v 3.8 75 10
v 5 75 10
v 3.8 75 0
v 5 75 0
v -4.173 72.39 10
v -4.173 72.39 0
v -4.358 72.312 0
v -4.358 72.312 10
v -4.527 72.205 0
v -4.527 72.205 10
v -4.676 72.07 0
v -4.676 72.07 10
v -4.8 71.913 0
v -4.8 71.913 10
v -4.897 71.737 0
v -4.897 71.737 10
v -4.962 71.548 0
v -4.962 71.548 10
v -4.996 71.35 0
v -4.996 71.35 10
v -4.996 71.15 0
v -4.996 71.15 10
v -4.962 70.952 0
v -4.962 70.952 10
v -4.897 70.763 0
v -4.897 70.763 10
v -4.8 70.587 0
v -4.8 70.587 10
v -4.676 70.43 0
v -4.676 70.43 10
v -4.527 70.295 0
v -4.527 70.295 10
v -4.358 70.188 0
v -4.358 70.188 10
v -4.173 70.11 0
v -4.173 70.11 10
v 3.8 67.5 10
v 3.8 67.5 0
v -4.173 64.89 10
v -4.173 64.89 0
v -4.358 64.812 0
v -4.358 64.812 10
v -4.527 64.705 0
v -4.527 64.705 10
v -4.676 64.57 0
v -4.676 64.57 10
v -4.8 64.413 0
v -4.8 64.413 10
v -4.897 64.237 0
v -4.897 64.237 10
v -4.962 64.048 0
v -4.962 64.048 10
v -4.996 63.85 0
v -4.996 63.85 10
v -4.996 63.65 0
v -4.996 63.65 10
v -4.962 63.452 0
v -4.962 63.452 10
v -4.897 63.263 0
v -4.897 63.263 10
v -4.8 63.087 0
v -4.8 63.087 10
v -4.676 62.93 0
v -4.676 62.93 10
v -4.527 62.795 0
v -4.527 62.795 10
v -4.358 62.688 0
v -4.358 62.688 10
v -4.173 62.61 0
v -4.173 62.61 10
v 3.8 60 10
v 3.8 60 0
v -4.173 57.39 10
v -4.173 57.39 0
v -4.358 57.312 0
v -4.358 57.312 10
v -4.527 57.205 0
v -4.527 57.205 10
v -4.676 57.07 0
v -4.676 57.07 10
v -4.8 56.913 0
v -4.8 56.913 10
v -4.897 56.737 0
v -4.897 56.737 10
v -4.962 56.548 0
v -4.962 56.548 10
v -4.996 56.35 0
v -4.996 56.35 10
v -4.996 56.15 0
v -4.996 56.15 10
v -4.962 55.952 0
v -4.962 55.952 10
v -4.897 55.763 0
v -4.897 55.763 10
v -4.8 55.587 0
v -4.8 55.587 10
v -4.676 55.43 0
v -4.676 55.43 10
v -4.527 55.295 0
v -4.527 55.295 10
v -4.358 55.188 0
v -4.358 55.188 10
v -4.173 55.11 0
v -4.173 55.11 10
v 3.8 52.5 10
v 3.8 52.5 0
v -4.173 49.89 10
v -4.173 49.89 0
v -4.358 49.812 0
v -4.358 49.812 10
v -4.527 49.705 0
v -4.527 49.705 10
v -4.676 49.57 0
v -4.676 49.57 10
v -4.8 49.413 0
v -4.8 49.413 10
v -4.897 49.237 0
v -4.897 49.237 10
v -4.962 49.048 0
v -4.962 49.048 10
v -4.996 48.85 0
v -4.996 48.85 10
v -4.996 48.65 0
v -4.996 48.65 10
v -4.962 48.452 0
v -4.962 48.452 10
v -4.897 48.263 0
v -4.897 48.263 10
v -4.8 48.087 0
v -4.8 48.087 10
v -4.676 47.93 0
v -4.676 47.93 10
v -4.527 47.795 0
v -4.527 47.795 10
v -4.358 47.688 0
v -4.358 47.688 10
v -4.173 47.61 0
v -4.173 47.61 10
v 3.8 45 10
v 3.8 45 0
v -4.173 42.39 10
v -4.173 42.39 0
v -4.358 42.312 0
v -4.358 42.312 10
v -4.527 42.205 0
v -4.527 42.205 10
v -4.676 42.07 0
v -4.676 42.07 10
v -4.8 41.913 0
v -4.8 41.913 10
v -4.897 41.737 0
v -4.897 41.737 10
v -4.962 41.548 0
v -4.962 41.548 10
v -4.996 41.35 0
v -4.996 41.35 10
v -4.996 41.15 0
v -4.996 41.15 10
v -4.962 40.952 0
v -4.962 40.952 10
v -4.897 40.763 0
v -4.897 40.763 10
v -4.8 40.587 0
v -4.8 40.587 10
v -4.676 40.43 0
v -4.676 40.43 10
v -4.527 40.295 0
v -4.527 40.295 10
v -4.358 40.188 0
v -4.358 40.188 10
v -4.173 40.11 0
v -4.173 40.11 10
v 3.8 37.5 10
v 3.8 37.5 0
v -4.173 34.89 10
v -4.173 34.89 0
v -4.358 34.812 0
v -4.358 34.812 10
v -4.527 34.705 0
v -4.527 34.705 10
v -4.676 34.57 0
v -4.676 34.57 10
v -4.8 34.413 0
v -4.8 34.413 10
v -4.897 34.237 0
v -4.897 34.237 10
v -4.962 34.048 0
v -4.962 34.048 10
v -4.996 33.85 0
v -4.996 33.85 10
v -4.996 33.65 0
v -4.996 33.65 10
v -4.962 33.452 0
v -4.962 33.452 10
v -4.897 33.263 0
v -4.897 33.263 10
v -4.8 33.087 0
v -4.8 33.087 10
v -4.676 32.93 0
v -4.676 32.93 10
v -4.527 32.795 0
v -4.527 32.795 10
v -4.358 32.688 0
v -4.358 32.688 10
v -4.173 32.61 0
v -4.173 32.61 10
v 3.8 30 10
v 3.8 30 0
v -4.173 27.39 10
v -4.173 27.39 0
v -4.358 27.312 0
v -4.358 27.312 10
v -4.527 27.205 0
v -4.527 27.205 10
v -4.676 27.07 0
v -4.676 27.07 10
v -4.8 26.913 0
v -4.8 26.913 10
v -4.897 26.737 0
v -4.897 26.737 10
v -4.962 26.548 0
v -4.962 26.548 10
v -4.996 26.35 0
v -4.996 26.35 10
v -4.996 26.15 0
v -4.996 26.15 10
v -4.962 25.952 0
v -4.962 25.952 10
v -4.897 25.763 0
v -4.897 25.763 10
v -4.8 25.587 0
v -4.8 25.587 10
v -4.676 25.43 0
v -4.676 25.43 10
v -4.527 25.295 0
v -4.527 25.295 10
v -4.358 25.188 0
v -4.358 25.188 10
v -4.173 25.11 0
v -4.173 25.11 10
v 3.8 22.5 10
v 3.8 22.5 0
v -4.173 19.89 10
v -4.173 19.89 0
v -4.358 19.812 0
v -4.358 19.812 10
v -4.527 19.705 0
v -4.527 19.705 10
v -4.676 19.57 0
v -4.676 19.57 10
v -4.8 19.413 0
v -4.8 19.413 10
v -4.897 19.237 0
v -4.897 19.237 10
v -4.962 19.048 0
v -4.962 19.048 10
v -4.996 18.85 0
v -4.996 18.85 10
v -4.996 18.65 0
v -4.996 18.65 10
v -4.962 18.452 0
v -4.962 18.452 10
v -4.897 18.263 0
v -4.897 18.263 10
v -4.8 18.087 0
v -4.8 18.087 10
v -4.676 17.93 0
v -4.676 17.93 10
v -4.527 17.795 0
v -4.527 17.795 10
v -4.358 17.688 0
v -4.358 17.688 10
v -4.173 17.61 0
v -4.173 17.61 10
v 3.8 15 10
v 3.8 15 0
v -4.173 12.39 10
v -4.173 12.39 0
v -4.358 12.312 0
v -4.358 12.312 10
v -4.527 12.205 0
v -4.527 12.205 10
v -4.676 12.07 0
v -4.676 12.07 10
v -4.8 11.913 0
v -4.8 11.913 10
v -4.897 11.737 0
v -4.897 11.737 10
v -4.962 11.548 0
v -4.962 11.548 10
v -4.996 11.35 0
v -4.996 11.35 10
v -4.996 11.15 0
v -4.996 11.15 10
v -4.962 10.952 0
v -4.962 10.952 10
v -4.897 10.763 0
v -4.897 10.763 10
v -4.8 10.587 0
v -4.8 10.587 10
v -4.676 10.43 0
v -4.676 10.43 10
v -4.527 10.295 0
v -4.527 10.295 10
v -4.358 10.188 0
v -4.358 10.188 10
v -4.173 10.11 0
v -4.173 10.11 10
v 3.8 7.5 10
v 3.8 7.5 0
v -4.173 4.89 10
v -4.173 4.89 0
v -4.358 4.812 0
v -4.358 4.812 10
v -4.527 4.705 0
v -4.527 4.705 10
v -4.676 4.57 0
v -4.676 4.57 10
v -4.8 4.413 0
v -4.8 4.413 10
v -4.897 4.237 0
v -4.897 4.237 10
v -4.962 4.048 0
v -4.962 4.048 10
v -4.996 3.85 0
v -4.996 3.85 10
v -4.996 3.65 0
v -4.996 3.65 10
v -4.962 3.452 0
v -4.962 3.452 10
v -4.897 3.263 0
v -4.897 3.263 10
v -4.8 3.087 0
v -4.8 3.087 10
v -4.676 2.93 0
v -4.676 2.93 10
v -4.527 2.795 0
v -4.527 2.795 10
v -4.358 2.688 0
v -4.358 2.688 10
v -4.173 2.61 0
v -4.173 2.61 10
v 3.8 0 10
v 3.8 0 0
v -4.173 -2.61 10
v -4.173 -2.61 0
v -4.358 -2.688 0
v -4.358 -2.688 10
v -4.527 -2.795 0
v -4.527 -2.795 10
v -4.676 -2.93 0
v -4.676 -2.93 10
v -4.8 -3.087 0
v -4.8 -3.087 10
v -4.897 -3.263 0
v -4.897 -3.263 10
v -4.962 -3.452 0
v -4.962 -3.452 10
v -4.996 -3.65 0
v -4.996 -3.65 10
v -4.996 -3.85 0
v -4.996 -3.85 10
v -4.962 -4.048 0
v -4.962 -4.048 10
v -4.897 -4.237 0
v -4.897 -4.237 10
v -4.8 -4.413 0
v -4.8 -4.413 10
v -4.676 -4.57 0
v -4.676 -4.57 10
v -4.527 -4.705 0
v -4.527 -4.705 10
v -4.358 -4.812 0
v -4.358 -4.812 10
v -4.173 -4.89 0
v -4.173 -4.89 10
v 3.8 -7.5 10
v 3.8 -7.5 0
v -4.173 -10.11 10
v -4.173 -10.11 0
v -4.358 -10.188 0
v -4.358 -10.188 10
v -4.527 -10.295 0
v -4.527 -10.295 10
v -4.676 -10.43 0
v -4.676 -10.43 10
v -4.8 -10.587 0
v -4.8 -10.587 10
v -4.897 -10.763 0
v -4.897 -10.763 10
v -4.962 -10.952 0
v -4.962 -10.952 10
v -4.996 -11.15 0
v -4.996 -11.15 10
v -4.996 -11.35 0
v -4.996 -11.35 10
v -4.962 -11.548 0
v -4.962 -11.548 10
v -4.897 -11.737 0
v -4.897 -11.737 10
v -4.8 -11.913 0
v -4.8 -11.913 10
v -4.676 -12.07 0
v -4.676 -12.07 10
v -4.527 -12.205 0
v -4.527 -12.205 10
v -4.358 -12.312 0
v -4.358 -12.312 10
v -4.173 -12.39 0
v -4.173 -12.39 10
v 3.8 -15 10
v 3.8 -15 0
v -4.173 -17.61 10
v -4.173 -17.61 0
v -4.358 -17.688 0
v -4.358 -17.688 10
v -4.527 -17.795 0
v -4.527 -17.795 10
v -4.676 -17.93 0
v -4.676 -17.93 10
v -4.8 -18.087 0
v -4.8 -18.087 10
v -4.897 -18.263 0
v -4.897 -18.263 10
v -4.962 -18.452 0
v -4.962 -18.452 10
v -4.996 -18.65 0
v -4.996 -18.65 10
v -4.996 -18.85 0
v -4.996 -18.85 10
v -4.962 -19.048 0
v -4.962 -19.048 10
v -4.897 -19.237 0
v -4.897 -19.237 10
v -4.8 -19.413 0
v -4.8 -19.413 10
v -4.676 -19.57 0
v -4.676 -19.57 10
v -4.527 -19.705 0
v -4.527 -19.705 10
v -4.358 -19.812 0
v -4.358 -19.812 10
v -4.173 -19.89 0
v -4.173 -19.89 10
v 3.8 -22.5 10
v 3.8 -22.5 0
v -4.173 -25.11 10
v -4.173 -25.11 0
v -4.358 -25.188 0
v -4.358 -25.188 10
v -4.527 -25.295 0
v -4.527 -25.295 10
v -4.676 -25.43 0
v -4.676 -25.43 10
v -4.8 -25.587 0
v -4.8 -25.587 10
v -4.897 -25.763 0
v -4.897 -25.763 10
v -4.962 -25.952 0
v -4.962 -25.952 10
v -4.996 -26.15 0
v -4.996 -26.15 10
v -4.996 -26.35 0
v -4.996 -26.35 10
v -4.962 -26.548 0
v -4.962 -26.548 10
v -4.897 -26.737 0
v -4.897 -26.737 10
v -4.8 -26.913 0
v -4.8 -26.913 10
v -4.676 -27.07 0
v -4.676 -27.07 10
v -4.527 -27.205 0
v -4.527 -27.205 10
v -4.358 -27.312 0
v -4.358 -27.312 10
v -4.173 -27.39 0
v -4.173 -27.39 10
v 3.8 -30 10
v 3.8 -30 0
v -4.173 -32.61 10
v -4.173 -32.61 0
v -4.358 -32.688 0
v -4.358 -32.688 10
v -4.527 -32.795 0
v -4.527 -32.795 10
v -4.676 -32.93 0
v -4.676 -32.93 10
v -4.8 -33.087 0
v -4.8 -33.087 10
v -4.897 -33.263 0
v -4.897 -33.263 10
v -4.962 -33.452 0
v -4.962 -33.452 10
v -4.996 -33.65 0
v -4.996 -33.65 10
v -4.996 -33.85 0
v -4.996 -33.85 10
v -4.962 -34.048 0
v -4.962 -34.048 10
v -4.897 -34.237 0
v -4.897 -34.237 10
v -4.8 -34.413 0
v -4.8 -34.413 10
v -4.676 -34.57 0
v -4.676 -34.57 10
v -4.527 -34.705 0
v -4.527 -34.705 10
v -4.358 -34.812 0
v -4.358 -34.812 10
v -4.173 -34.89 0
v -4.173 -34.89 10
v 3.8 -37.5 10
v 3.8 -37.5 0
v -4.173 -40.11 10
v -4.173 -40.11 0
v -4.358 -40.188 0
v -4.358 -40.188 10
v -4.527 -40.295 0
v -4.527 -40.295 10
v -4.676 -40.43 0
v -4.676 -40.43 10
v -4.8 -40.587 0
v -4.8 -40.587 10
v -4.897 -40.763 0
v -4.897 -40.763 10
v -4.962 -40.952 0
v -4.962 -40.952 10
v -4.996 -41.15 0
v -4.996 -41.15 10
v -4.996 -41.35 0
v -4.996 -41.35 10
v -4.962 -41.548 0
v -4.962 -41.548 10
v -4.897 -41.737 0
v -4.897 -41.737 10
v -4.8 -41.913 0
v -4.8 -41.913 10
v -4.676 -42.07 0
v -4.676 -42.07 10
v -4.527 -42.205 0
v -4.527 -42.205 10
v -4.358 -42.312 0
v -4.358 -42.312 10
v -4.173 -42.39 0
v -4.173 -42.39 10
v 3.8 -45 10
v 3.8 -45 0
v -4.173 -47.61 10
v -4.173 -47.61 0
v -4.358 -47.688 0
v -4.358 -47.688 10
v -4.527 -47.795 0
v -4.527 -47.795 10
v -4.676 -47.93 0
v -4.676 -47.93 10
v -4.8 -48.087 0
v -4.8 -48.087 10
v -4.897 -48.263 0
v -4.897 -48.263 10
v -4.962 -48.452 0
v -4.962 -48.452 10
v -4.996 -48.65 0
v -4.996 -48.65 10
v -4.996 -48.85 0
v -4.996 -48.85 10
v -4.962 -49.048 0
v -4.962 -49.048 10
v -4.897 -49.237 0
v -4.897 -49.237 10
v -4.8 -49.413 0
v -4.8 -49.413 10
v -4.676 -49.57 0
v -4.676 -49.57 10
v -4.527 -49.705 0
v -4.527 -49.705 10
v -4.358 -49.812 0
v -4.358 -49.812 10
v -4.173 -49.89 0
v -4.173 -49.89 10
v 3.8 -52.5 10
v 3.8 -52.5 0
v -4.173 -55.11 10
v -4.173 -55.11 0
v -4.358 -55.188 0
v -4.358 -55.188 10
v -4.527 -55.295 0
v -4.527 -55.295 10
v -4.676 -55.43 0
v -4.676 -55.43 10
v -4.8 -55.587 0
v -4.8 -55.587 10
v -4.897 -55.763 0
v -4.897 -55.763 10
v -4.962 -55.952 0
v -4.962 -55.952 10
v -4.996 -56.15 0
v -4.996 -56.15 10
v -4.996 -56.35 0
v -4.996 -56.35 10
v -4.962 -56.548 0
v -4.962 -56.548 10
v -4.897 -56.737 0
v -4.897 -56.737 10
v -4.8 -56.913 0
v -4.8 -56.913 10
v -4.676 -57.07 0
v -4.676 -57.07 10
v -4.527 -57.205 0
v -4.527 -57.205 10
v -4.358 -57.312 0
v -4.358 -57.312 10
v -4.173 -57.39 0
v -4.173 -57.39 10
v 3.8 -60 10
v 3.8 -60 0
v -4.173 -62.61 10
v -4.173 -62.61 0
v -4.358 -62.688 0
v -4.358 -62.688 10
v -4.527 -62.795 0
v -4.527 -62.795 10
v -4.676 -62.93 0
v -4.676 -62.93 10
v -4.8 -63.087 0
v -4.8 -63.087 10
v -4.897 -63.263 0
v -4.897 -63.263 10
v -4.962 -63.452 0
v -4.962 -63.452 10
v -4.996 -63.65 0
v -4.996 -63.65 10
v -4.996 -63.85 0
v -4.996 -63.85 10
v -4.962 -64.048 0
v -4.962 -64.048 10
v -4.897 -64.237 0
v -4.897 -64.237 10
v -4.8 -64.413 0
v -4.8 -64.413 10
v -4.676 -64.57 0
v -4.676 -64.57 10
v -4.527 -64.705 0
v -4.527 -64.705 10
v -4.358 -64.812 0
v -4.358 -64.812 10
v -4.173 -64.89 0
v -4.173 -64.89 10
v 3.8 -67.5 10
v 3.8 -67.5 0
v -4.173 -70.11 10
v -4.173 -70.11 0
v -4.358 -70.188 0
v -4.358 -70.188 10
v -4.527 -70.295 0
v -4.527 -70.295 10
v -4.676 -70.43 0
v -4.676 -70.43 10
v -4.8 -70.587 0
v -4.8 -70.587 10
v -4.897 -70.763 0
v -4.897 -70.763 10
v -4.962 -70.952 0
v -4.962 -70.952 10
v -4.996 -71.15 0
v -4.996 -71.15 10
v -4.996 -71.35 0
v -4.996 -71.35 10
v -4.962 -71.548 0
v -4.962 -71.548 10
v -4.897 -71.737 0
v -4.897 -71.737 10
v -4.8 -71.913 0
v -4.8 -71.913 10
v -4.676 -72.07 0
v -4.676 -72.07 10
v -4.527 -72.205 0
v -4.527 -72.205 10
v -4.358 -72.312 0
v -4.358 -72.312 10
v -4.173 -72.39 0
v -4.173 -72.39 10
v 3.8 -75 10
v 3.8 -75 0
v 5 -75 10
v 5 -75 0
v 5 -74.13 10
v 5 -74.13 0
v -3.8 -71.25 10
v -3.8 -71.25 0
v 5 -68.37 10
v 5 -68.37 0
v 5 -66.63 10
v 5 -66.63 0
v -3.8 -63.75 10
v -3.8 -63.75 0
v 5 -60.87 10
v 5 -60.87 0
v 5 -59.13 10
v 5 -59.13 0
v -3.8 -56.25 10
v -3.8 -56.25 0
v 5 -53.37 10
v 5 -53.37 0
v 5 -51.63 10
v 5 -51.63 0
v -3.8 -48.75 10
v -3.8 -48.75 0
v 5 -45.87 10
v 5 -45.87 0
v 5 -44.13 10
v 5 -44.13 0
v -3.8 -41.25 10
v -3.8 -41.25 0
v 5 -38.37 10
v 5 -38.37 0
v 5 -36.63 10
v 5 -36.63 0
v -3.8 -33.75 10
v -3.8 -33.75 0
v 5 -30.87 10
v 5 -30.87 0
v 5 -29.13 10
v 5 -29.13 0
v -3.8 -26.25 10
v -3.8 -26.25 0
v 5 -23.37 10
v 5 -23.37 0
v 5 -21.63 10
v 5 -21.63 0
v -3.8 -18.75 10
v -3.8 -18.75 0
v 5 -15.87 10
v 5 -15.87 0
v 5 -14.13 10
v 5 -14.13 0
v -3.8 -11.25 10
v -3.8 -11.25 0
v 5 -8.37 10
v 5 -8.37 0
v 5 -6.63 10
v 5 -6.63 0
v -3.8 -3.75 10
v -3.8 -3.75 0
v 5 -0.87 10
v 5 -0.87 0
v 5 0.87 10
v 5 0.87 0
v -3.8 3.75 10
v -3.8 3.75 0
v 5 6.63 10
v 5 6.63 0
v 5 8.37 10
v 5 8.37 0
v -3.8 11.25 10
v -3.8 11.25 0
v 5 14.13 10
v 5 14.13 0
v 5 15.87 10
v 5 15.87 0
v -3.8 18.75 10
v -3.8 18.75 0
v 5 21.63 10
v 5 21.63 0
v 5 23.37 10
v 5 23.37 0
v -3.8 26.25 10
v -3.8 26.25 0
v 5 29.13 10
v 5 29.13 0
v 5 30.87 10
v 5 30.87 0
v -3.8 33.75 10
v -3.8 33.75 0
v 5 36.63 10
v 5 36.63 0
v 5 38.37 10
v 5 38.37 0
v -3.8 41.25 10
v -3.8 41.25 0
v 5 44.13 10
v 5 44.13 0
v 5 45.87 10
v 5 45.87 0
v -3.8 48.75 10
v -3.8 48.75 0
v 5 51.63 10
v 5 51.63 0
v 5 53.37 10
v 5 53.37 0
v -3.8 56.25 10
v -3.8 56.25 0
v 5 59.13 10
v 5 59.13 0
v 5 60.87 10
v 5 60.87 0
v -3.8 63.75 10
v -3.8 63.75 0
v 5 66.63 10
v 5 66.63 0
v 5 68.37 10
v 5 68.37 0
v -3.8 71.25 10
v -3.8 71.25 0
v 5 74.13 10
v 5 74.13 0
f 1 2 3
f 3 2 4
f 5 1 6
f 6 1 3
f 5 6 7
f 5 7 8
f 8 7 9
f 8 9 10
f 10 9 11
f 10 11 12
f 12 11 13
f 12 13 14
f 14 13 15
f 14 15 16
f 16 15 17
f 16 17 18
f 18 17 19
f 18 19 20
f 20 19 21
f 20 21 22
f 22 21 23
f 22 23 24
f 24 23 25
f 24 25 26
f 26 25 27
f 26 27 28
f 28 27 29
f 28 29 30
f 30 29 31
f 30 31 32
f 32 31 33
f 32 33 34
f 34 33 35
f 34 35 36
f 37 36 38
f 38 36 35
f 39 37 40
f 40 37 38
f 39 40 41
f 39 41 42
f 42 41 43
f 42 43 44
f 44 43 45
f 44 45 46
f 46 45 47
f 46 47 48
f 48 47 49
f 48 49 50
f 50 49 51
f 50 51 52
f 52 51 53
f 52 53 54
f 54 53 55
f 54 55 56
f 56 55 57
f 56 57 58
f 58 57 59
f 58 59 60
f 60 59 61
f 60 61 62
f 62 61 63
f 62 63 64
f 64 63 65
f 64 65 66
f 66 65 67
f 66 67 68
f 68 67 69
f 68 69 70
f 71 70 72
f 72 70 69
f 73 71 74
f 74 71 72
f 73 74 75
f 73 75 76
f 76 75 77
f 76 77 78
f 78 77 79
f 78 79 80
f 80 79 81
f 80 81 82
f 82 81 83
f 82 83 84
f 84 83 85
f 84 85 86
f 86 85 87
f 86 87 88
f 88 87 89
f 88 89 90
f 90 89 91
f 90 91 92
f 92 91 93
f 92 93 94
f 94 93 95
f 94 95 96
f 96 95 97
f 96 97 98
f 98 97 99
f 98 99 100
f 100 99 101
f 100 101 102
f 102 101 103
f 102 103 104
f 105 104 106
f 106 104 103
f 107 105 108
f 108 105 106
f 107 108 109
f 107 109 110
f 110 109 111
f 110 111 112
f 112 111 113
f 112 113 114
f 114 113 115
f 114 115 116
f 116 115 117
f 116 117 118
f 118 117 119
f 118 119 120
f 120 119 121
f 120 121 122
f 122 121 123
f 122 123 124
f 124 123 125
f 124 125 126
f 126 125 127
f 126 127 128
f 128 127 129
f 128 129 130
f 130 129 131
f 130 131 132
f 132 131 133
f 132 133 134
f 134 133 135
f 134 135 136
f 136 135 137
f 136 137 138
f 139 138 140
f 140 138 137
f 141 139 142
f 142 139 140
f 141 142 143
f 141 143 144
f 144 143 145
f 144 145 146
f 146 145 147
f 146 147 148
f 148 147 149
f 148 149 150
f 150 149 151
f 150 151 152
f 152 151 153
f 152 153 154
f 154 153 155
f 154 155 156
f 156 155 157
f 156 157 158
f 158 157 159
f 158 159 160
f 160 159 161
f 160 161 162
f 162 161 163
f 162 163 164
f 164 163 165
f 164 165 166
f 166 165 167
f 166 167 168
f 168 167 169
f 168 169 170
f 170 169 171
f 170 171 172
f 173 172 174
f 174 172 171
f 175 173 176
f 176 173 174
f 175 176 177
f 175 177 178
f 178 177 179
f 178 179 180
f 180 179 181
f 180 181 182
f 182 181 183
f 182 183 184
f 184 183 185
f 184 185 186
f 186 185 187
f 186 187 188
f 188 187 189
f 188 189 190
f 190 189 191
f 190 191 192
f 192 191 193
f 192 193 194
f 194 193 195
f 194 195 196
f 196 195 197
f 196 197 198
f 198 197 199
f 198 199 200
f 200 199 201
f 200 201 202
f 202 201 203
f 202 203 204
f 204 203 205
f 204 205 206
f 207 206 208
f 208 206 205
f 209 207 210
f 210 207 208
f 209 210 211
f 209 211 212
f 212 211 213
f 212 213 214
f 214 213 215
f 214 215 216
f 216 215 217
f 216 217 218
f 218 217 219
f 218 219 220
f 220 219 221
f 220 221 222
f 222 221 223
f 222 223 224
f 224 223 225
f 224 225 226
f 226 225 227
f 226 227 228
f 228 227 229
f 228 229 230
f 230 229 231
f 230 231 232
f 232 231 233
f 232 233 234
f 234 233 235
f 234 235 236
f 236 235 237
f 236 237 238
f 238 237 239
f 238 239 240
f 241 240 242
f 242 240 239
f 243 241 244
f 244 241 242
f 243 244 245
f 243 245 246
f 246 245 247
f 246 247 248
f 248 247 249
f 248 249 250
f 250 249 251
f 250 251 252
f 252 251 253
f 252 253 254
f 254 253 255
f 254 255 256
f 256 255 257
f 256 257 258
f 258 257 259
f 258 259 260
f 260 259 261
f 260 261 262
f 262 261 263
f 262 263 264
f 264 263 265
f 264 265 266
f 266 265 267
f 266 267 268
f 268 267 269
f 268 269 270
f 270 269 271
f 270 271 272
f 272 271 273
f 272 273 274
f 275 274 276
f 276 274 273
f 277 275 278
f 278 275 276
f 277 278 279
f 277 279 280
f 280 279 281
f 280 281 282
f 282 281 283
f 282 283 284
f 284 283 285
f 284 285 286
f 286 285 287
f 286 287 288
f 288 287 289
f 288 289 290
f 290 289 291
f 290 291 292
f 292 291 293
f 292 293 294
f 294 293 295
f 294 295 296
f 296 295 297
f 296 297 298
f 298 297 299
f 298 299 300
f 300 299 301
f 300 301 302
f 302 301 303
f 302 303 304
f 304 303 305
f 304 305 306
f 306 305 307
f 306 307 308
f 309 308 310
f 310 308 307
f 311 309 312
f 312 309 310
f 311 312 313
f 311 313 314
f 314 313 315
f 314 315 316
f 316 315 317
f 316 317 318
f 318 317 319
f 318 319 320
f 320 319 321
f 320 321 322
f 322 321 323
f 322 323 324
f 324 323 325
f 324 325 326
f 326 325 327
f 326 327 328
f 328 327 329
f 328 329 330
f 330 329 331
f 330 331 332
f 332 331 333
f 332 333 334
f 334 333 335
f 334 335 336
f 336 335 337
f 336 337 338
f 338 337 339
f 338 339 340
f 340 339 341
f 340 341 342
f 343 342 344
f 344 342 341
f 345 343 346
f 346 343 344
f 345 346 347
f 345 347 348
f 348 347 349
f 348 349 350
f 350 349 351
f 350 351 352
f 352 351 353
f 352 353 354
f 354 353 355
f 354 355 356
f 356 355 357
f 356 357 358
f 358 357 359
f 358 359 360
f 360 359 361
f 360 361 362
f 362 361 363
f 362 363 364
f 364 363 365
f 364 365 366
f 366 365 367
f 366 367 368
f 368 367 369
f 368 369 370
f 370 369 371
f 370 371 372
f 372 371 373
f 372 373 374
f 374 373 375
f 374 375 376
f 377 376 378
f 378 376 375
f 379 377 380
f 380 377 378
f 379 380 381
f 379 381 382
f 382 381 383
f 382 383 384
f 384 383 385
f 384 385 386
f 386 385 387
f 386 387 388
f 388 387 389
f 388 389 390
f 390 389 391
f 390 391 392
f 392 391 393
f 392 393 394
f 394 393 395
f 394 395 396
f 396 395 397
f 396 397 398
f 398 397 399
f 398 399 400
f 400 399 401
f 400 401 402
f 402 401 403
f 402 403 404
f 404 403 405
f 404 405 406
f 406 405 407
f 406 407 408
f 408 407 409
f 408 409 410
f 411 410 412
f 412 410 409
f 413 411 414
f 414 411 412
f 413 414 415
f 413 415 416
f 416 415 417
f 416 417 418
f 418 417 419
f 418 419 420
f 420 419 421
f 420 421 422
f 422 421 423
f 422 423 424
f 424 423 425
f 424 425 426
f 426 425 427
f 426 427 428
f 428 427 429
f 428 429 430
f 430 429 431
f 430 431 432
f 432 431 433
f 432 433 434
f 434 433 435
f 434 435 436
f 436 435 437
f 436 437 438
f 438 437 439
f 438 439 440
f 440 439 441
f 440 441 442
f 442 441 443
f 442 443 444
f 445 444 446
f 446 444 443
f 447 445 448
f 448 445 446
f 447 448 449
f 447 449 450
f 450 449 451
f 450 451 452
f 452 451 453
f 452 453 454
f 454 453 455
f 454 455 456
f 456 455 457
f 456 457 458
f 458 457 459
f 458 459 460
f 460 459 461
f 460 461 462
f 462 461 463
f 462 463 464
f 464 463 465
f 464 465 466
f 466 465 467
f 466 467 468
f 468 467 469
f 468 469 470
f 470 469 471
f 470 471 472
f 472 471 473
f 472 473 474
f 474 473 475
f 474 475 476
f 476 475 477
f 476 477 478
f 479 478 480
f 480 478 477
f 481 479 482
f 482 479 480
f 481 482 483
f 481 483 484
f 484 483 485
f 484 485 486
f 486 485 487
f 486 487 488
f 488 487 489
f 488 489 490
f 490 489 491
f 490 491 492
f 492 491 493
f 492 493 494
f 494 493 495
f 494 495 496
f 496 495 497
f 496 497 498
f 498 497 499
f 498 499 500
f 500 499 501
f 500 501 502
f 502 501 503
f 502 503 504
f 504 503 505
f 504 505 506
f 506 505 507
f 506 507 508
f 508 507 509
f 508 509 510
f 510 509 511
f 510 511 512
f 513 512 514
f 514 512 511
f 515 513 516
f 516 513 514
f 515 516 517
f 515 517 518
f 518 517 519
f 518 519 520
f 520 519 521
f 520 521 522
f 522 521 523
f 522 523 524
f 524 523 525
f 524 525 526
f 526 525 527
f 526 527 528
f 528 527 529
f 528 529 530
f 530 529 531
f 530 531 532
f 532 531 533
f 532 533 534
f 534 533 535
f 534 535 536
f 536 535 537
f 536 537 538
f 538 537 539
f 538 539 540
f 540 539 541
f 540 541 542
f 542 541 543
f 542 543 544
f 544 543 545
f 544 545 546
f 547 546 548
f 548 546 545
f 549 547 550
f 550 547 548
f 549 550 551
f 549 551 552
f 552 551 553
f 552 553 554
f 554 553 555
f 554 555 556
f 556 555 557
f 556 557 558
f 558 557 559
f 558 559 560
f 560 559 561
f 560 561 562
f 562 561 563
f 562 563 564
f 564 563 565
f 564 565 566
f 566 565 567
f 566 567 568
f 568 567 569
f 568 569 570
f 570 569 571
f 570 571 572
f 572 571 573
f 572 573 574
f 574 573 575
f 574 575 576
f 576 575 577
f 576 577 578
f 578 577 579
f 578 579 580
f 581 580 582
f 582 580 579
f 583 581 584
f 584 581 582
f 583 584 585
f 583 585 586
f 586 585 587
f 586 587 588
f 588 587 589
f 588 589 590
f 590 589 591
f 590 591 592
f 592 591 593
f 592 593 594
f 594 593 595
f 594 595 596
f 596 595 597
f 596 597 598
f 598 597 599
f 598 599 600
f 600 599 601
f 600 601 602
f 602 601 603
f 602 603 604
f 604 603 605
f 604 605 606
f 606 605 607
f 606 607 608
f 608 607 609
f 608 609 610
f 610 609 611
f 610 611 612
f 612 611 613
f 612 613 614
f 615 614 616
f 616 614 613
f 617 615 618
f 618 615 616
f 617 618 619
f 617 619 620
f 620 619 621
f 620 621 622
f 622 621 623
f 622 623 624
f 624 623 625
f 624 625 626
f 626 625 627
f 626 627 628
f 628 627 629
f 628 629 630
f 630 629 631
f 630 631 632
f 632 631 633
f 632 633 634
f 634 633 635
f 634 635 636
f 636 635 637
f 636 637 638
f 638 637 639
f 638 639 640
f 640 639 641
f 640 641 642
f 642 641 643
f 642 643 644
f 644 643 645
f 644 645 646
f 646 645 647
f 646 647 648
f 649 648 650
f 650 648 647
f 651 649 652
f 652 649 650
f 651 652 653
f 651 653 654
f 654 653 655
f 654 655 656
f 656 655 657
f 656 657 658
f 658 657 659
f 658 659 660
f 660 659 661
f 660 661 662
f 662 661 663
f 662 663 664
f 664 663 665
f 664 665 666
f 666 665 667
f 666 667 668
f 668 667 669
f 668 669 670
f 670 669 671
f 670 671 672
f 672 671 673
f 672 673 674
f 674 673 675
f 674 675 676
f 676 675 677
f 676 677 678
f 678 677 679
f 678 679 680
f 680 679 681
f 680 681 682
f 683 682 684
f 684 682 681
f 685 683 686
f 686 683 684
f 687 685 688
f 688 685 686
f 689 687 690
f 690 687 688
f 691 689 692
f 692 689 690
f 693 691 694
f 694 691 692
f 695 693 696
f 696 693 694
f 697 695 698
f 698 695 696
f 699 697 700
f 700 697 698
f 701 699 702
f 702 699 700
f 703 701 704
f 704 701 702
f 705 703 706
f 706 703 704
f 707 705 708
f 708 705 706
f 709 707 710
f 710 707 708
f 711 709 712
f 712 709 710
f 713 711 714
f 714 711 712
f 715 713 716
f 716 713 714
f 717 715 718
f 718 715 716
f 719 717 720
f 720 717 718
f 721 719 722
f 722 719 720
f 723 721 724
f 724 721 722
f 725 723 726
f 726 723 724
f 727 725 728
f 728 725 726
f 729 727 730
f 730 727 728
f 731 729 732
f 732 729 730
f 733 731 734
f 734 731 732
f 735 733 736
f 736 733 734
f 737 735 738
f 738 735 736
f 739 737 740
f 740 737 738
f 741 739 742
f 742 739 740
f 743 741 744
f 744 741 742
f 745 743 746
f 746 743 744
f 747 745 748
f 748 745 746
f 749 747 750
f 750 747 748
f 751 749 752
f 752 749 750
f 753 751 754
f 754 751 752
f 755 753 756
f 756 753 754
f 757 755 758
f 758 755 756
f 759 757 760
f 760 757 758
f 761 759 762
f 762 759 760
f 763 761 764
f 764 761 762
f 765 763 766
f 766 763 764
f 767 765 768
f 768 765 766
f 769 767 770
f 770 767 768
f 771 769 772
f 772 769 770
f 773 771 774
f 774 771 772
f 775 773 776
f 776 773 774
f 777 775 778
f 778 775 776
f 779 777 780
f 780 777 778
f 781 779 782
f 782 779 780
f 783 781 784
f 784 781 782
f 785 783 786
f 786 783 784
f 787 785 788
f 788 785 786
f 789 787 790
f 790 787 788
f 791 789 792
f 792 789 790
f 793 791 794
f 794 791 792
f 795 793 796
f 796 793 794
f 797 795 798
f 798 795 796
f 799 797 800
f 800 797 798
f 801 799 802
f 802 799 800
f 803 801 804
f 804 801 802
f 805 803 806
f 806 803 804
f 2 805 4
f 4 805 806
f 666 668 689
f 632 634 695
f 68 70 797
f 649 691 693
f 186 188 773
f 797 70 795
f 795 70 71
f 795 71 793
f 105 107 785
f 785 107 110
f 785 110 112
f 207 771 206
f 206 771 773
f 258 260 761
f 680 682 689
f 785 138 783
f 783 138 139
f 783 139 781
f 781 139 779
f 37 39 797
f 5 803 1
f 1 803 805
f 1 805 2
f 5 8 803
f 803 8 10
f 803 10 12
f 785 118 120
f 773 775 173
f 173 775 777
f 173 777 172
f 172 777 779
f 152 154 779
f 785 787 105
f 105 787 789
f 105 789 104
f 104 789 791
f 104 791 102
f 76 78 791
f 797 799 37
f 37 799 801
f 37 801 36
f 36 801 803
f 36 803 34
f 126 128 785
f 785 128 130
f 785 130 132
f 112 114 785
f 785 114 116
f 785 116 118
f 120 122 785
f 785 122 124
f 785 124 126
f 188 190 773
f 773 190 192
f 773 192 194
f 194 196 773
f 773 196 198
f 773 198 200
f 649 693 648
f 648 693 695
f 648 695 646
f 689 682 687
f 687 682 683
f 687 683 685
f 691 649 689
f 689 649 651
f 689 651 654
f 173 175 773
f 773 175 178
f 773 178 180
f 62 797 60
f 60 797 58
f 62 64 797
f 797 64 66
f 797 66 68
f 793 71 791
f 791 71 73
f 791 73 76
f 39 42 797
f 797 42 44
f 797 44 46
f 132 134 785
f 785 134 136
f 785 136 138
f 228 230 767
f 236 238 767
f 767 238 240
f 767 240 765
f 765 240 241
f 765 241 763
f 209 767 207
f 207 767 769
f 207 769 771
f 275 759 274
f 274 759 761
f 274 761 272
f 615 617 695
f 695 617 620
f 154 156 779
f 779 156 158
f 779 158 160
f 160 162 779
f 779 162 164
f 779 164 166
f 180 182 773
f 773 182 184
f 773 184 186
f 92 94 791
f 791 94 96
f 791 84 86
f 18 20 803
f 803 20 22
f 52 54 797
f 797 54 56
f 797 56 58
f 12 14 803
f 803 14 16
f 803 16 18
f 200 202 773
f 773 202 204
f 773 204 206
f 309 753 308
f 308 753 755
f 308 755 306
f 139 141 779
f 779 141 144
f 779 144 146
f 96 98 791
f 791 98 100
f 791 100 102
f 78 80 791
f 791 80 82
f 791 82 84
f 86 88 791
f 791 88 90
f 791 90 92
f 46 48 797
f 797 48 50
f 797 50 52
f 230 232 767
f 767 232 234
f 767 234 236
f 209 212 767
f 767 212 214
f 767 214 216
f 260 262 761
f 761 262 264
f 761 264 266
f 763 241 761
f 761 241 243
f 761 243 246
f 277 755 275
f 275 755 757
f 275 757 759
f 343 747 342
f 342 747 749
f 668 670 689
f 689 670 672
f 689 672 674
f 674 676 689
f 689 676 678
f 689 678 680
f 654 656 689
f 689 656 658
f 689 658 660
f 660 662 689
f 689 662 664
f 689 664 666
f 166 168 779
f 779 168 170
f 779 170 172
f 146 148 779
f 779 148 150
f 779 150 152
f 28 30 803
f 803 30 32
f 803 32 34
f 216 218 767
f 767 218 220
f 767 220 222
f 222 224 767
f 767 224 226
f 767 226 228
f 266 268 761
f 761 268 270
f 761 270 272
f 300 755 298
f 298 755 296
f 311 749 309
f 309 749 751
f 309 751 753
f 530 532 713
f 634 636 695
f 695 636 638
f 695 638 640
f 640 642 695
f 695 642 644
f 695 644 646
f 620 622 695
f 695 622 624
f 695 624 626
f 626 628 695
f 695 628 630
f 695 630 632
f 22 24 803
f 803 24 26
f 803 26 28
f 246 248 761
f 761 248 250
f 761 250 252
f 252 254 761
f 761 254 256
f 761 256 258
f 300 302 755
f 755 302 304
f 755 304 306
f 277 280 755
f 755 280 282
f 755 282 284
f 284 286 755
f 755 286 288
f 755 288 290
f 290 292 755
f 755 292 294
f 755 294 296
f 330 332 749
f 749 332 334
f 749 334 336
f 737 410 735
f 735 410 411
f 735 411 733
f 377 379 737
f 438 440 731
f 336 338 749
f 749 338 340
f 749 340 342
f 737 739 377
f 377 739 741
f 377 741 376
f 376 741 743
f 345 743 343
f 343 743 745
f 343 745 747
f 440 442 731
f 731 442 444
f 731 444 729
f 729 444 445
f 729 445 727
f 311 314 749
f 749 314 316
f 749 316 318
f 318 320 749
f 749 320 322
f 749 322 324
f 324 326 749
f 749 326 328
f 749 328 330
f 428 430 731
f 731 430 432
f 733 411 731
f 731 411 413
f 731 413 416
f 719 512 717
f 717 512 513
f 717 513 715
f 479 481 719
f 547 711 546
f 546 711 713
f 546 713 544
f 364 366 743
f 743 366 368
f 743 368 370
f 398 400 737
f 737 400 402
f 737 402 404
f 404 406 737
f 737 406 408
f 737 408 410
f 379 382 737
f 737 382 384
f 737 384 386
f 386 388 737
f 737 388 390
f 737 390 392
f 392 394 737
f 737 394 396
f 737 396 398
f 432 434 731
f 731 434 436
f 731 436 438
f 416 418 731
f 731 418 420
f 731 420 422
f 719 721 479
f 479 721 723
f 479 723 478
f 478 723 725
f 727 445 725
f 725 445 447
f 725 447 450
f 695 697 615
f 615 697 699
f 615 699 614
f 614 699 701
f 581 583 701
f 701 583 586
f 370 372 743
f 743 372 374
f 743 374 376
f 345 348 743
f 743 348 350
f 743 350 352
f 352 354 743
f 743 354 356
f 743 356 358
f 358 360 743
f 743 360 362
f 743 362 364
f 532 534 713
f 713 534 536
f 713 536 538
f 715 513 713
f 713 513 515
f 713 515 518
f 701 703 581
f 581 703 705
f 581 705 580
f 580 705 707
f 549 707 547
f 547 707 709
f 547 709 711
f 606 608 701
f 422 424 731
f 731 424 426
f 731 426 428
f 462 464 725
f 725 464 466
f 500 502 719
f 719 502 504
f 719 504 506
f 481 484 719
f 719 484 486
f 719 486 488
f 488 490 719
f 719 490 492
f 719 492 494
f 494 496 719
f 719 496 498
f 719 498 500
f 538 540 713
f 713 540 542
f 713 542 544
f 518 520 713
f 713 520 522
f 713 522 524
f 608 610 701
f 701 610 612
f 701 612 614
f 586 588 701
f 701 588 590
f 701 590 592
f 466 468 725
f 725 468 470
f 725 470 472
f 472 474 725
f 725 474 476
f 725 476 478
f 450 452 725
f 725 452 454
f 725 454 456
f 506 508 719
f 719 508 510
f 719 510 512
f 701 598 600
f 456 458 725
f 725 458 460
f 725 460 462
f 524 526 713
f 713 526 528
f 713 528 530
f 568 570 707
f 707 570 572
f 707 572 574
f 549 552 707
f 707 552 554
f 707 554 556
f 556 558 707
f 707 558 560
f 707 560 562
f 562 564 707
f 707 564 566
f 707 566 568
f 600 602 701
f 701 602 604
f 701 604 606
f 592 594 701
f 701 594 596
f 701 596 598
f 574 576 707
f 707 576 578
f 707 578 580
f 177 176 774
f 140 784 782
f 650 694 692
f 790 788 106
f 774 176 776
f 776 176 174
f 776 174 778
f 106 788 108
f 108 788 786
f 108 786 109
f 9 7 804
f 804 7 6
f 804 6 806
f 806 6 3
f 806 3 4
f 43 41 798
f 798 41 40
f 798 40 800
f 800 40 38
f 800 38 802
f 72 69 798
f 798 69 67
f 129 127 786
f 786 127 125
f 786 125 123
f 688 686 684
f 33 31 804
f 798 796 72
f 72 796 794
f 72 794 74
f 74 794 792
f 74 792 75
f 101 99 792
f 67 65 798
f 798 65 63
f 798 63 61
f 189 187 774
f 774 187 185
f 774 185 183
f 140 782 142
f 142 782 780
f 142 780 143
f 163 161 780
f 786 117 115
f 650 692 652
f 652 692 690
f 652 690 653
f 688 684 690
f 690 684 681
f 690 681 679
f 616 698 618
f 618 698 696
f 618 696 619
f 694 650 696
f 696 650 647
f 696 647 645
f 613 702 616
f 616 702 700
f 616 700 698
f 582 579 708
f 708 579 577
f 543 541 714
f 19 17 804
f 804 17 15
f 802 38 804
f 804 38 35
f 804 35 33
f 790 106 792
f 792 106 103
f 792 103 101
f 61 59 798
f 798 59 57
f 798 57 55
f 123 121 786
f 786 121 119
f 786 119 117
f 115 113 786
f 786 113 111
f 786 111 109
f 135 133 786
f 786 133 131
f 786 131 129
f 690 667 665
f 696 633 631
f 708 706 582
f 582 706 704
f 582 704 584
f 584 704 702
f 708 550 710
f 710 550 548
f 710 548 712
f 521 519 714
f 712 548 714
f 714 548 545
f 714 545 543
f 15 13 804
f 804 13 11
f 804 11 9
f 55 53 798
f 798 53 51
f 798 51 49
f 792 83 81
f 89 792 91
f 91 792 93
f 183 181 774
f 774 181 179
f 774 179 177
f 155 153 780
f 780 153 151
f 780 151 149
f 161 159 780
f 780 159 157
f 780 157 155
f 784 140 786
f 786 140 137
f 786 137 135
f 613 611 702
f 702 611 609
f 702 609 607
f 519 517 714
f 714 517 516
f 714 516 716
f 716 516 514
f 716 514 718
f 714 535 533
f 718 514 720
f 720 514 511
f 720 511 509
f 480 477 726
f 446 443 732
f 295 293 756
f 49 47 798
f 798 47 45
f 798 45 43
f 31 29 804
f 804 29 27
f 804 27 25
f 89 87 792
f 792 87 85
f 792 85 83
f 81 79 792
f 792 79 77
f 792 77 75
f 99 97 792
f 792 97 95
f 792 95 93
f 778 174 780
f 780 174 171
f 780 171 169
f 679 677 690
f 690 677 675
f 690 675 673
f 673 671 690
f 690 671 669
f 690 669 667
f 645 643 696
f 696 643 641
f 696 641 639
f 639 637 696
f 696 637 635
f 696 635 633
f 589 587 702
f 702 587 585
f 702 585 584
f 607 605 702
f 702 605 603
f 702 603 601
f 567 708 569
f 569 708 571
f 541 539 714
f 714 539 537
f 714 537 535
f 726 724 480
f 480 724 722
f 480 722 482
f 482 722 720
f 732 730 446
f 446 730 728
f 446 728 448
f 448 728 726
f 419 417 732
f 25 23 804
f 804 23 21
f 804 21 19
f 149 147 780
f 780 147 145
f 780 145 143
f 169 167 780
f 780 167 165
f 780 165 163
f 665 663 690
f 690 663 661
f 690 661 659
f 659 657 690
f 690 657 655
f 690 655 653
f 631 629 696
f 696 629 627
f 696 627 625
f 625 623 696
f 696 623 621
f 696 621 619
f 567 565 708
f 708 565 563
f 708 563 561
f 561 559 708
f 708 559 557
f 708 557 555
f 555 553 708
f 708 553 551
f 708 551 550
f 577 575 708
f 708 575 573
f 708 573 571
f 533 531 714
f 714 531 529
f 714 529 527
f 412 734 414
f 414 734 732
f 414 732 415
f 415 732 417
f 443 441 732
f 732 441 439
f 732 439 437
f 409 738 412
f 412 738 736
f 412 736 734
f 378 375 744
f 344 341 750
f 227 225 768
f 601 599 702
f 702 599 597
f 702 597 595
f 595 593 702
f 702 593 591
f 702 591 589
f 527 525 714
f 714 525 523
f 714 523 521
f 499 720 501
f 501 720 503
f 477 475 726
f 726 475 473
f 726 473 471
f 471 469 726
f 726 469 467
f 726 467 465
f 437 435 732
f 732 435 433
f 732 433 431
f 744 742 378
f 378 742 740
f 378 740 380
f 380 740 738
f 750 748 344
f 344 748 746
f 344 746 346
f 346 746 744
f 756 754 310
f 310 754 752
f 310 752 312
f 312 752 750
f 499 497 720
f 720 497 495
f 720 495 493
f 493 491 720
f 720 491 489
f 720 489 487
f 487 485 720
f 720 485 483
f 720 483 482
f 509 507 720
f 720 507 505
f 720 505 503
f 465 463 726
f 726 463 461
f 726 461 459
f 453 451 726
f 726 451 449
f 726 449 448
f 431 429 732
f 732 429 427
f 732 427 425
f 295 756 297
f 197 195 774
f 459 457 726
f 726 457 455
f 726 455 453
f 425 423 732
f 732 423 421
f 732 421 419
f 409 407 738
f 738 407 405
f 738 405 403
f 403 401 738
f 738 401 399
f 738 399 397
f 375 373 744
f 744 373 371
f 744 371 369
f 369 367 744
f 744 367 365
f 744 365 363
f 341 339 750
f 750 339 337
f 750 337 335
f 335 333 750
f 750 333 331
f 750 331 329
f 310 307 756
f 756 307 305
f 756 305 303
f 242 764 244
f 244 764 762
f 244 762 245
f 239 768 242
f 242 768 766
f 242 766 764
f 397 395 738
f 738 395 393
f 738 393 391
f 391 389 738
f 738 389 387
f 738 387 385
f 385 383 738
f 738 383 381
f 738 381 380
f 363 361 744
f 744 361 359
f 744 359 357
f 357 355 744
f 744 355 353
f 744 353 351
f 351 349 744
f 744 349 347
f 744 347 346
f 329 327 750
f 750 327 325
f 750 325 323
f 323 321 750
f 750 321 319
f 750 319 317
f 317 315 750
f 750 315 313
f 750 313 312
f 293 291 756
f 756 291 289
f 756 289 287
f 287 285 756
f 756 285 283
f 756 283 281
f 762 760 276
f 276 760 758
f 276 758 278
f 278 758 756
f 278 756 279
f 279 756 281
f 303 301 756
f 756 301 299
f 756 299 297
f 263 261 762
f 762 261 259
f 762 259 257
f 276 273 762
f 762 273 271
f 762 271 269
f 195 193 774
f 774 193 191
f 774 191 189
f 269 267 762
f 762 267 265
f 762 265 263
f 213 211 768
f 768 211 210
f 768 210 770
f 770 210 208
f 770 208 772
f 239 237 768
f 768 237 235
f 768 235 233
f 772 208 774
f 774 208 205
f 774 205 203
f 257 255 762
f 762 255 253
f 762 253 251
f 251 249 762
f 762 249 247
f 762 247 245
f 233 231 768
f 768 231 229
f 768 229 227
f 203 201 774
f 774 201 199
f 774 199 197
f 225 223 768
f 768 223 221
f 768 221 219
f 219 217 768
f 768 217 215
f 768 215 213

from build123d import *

# Parameters (mm, degrees)
BOSS_EXTRUDE1_DEPTH = 10


with BuildPart() as part:
    # Sketch1 → Boss-Extrude1 (new body)
    with BuildSketch(Plane.XY):
        with BuildLine():
            Line((5, 74.130107274), (5, 75))
            Line((5, 75), (3.8, 75))
            Line((3.8, 75), (-4.17325943, 72.390472445))
            ThreePointArc((-4.17325943, 72.390472445), (-5, 71.25), (-4.17325943, 70.109527555))
            Line((-4.17325943, 70.109527555), (3.8, 67.5))
            Line((3.8, 67.5), (-4.17325943, 64.890472445))
            ThreePointArc((-4.17325943, 64.890472445), (-5, 63.75), (-4.17325943, 62.609527555))
            Line((-4.17325943, 62.609527555), (3.8, 60))
            Line((3.8, 60), (-4.17325943, 57.390472445))
            ThreePointArc((-4.17325943, 57.390472445), (-5, 56.25), (-4.17325943, 55.109527555))
            Line((-4.17325943, 55.109527555), (3.8, 52.5))
            Line((3.8, 52.5), (-4.17325943, 49.890472445))
            ThreePointArc((-4.17325943, 49.890472445), (-5, 48.75), (-4.17325943, 47.609527555))
            Line((-4.17325943, 47.609527555), (3.8, 45))
            Line((3.8, 45), (-4.17325943, 42.390472445))
            ThreePointArc((-4.17325943, 42.390472445), (-5, 41.25), (-4.17325943, 40.109527555))
            Line((-4.17325943, 40.109527555), (3.8, 37.5))
            Line((3.8, 37.5), (-4.17325943, 34.890472445))
            ThreePointArc((-4.17325943, 34.890472445), (-5, 33.75), (-4.17325943, 32.609527555))
            Line((-4.17325943, 32.609527555), (3.8, 30))
            Line((3.8, 30), (-4.17325943, 27.390472445))
            ThreePointArc((-4.17325943, 27.390472445), (-5, 26.25), (-4.17325943, 25.109527555))
            Line((-4.17325943, 25.109527555), (3.8, 22.5))
            Line((3.8, 22.5), (-4.17325943, 19.890472445))
            ThreePointArc((-4.17325943, 19.890472445), (-5, 18.75), (-4.17325943, 17.609527555))
            Line((-4.17325943, 17.609527555), (3.8, 15))
            Line((3.8, 15), (-4.17325943, 12.390472445))
            ThreePointArc((-4.17325943, 12.390472445), (-5, 11.25), (-4.17325943, 10.109527555))
            Line((-4.17325943, 10.109527555), (3.8, 7.5))
            Line((3.8, 7.5), (-4.17325943, 4.890472445))
            ThreePointArc((-4.17325943, 4.890472445), (-5, 3.75), (-4.17325943, 2.609527555))
            Line((-4.17325943, 2.609527555), (3.8, 0))
            Line((3.8, 0), (-4.17325943, -2.609527555))
            ThreePointArc((-4.17325943, -2.609527555), (-5, -3.75), (-4.17325943, -4.890472445))
            Line((-4.17325943, -4.890472445), (3.8, -7.5))
            Line((3.8, -7.5), (-4.17325943, -10.109527555))
            ThreePointArc((-4.17325943, -10.109527555), (-5, -11.25), (-4.17325943, -12.390472445))
            Line((-4.17325943, -12.390472445), (3.8, -15))
            Line((3.8, -15), (-4.17325943, -17.609527555))
            ThreePointArc((-4.17325943, -17.609527555), (-5, -18.75), (-4.17325943, -19.890472445))
            Line((-4.17325943, -19.890472445), (3.8, -22.5))
            Line((3.8, -22.5), (-4.17325943, -25.109527555))
            ThreePointArc((-4.17325943, -25.109527555), (-5, -26.25), (-4.17325943, -27.390472445))
            Line((-4.17325943, -27.390472445), (3.8, -30))
            Line((3.8, -30), (-4.17325943, -32.609527555))
            ThreePointArc((-4.17325943, -32.609527555), (-5, -33.75), (-4.17325943, -34.890472445))
            Line((-4.17325943, -34.890472445), (3.8, -37.5))
            Line((3.8, -37.5), (-4.17325943, -40.109527555))
            ThreePointArc((-4.17325943, -40.109527555), (-5, -41.25), (-4.17325943, -42.390472445))
            Line((-4.17325943, -42.390472445), (3.8, -45))
            Line((3.8, -45), (-4.17325943, -47.609527555))
            ThreePointArc((-4.17325943, -47.609527555), (-5, -48.75), (-4.17325943, -49.890472445))
            Line((-4.17325943, -49.890472445), (3.8, -52.5))
            Line((3.8, -52.5), (-4.17325943, -55.109527555))
            ThreePointArc((-4.17325943, -55.109527555), (-5, -56.25), (-4.17325943, -57.390472445))
            Line((-4.17325943, -57.390472445), (3.8, -60))
            Line((3.8, -60), (-4.17325943, -62.609527555))
            ThreePointArc((-4.17325943, -62.609527555), (-5, -63.75), (-4.17325943, -64.890472445))
            Line((-4.17325943, -64.890472445), (3.8, -67.5))
            Line((3.8, -67.5), (-4.17325943, -70.109527555))
            ThreePointArc((-4.17325943, -70.109527555), (-5, -71.25), (-4.17325943, -72.390472445))
            Line((-4.17325943, -72.390472445), (3.8, -75))
            Line((3.8, -75), (5, -75))
            Line((5, -75), (5, -74.130107274))
            Line((5, -74.130107274), (-3.8, -71.25))
            Line((-3.8, -71.25), (5, -68.369892726))
            Line((5, -68.369892726), (5, -67.5))
            Line((5, -67.5), (5, -66.630107274))
            Line((5, -66.630107274), (-3.8, -63.75))
            Line((-3.8, -63.75), (5, -60.869892726))
            Line((5, -60.869892726), (5, -60))
            Line((5, -60), (5, -59.130107274))
            Line((5, -59.130107274), (-3.8, -56.25))
            Line((-3.8, -56.25), (5, -53.369892726))
            Line((5, -53.369892726), (5, -52.5))
            Line((5, -52.5), (5, -51.630107274))
            Line((5, -51.630107274), (-3.8, -48.75))
            Line((-3.8, -48.75), (5, -45.869892726))
            Line((5, -45.869892726), (5, -45))
            Line((5, -45), (5, -44.130107274))
            Line((5, -44.130107274), (-3.8, -41.25))
            Line((-3.8, -41.25), (5, -38.369892726))
            Line((5, -38.369892726), (5, -37.5))
            Line((5, -37.5), (5, -36.630107274))
            Line((5, -36.630107274), (-3.8, -33.75))
            Line((-3.8, -33.75), (5, -30.869892726))
            Line((5, -30.869892726), (5, -30))
            Line((5, -30), (5, -29.130107274))
            Line((5, -29.130107274), (-3.8, -26.25))
            Line((-3.8, -26.25), (5, -23.369892726))
            Line((5, -23.369892726), (5, -22.5))
            Line((5, -22.5), (5, -21.630107274))
            Line((5, -21.630107274), (-3.8, -18.75))
            Line((-3.8, -18.75), (5, -15.869892726))
            Line((5, -15.869892726), (5, -15))
            Line((5, -15), (5, -14.130107274))
            Line((5, -14.130107274), (-3.8, -11.25))
            Line((-3.8, -11.25), (5, -8.369892726))
            Line((5, -8.369892726), (5, -7.5))
            Line((5, -7.5), (5, -6.630107274))
            Line((5, -6.630107274), (-3.8, -3.75))
            Line((-3.8, -3.75), (5, -0.869892726))
            Line((5, -0.869892726), (5, 0))
            Line((5, 0), (5, 0.869892726))
            Line((5, 0.869892726), (-3.8, 3.75))
            Line((-3.8, 3.75), (5, 6.630107274))
            Line((5, 6.630107274), (5, 7.5))
            Line((5, 7.5), (5, 8.369892726))
            Line((5, 8.369892726), (-3.8, 11.25))
            Line((-3.8, 11.25), (5, 14.130107274))
            Line((5, 14.130107274), (5, 15))
            Line((5, 15), (5, 15.869892726))
            Line((5, 15.869892726), (-3.8, 18.75))
            Line((-3.8, 18.75), (5, 21.630107274))
            Line((5, 21.630107274), (5, 22.5))
            Line((5, 22.5), (5, 23.369892726))
            Line((5, 23.369892726), (-3.8, 26.25))
            Line((-3.8, 26.25), (5, 29.130107274))
            Line((5, 29.130107274), (5, 30))
            Line((5, 30), (5, 30.869892726))
            Line((5, 30.869892726), (-3.8, 33.75))
            Line((-3.8, 33.75), (5, 36.630107274))
            Line((5, 36.630107274), (5, 37.5))
            Line((5, 37.5), (5, 38.369892726))
            Line((5, 38.369892726), (-3.8, 41.25))
            Line((-3.8, 41.25), (5, 44.130107274))
            Line((5, 44.130107274), (5, 45))
            Line((5, 45), (5, 45.869892726))
            Line((5, 45.869892726), (-3.8, 48.75))
            Line((-3.8, 48.75), (5, 51.630107274))
            Line((5, 51.630107274), (5, 52.5))
            Line((5, 52.5), (5, 53.369892726))
            Line((5, 53.369892726), (-3.8, 56.25))
            Line((-3.8, 56.25), (5, 59.130107274))
            Line((5, 59.130107274), (5, 60))
            Line((5, 60), (5, 60.869892726))
            Line((5, 60.869892726), (-3.8, 63.75))
            Line((-3.8, 63.75), (5, 66.630107274))
            Line((5, 66.630107274), (5, 67.5))
            Line((5, 67.5), (5, 68.369892726))
            Line((5, 68.369892726), (-3.8, 71.25))
            Line((-3.8, 71.25), (5, 74.130107274))
        make_face()
    extrude(amount=BOSS_EXTRUDE1_DEPTH)


solid = part.part
